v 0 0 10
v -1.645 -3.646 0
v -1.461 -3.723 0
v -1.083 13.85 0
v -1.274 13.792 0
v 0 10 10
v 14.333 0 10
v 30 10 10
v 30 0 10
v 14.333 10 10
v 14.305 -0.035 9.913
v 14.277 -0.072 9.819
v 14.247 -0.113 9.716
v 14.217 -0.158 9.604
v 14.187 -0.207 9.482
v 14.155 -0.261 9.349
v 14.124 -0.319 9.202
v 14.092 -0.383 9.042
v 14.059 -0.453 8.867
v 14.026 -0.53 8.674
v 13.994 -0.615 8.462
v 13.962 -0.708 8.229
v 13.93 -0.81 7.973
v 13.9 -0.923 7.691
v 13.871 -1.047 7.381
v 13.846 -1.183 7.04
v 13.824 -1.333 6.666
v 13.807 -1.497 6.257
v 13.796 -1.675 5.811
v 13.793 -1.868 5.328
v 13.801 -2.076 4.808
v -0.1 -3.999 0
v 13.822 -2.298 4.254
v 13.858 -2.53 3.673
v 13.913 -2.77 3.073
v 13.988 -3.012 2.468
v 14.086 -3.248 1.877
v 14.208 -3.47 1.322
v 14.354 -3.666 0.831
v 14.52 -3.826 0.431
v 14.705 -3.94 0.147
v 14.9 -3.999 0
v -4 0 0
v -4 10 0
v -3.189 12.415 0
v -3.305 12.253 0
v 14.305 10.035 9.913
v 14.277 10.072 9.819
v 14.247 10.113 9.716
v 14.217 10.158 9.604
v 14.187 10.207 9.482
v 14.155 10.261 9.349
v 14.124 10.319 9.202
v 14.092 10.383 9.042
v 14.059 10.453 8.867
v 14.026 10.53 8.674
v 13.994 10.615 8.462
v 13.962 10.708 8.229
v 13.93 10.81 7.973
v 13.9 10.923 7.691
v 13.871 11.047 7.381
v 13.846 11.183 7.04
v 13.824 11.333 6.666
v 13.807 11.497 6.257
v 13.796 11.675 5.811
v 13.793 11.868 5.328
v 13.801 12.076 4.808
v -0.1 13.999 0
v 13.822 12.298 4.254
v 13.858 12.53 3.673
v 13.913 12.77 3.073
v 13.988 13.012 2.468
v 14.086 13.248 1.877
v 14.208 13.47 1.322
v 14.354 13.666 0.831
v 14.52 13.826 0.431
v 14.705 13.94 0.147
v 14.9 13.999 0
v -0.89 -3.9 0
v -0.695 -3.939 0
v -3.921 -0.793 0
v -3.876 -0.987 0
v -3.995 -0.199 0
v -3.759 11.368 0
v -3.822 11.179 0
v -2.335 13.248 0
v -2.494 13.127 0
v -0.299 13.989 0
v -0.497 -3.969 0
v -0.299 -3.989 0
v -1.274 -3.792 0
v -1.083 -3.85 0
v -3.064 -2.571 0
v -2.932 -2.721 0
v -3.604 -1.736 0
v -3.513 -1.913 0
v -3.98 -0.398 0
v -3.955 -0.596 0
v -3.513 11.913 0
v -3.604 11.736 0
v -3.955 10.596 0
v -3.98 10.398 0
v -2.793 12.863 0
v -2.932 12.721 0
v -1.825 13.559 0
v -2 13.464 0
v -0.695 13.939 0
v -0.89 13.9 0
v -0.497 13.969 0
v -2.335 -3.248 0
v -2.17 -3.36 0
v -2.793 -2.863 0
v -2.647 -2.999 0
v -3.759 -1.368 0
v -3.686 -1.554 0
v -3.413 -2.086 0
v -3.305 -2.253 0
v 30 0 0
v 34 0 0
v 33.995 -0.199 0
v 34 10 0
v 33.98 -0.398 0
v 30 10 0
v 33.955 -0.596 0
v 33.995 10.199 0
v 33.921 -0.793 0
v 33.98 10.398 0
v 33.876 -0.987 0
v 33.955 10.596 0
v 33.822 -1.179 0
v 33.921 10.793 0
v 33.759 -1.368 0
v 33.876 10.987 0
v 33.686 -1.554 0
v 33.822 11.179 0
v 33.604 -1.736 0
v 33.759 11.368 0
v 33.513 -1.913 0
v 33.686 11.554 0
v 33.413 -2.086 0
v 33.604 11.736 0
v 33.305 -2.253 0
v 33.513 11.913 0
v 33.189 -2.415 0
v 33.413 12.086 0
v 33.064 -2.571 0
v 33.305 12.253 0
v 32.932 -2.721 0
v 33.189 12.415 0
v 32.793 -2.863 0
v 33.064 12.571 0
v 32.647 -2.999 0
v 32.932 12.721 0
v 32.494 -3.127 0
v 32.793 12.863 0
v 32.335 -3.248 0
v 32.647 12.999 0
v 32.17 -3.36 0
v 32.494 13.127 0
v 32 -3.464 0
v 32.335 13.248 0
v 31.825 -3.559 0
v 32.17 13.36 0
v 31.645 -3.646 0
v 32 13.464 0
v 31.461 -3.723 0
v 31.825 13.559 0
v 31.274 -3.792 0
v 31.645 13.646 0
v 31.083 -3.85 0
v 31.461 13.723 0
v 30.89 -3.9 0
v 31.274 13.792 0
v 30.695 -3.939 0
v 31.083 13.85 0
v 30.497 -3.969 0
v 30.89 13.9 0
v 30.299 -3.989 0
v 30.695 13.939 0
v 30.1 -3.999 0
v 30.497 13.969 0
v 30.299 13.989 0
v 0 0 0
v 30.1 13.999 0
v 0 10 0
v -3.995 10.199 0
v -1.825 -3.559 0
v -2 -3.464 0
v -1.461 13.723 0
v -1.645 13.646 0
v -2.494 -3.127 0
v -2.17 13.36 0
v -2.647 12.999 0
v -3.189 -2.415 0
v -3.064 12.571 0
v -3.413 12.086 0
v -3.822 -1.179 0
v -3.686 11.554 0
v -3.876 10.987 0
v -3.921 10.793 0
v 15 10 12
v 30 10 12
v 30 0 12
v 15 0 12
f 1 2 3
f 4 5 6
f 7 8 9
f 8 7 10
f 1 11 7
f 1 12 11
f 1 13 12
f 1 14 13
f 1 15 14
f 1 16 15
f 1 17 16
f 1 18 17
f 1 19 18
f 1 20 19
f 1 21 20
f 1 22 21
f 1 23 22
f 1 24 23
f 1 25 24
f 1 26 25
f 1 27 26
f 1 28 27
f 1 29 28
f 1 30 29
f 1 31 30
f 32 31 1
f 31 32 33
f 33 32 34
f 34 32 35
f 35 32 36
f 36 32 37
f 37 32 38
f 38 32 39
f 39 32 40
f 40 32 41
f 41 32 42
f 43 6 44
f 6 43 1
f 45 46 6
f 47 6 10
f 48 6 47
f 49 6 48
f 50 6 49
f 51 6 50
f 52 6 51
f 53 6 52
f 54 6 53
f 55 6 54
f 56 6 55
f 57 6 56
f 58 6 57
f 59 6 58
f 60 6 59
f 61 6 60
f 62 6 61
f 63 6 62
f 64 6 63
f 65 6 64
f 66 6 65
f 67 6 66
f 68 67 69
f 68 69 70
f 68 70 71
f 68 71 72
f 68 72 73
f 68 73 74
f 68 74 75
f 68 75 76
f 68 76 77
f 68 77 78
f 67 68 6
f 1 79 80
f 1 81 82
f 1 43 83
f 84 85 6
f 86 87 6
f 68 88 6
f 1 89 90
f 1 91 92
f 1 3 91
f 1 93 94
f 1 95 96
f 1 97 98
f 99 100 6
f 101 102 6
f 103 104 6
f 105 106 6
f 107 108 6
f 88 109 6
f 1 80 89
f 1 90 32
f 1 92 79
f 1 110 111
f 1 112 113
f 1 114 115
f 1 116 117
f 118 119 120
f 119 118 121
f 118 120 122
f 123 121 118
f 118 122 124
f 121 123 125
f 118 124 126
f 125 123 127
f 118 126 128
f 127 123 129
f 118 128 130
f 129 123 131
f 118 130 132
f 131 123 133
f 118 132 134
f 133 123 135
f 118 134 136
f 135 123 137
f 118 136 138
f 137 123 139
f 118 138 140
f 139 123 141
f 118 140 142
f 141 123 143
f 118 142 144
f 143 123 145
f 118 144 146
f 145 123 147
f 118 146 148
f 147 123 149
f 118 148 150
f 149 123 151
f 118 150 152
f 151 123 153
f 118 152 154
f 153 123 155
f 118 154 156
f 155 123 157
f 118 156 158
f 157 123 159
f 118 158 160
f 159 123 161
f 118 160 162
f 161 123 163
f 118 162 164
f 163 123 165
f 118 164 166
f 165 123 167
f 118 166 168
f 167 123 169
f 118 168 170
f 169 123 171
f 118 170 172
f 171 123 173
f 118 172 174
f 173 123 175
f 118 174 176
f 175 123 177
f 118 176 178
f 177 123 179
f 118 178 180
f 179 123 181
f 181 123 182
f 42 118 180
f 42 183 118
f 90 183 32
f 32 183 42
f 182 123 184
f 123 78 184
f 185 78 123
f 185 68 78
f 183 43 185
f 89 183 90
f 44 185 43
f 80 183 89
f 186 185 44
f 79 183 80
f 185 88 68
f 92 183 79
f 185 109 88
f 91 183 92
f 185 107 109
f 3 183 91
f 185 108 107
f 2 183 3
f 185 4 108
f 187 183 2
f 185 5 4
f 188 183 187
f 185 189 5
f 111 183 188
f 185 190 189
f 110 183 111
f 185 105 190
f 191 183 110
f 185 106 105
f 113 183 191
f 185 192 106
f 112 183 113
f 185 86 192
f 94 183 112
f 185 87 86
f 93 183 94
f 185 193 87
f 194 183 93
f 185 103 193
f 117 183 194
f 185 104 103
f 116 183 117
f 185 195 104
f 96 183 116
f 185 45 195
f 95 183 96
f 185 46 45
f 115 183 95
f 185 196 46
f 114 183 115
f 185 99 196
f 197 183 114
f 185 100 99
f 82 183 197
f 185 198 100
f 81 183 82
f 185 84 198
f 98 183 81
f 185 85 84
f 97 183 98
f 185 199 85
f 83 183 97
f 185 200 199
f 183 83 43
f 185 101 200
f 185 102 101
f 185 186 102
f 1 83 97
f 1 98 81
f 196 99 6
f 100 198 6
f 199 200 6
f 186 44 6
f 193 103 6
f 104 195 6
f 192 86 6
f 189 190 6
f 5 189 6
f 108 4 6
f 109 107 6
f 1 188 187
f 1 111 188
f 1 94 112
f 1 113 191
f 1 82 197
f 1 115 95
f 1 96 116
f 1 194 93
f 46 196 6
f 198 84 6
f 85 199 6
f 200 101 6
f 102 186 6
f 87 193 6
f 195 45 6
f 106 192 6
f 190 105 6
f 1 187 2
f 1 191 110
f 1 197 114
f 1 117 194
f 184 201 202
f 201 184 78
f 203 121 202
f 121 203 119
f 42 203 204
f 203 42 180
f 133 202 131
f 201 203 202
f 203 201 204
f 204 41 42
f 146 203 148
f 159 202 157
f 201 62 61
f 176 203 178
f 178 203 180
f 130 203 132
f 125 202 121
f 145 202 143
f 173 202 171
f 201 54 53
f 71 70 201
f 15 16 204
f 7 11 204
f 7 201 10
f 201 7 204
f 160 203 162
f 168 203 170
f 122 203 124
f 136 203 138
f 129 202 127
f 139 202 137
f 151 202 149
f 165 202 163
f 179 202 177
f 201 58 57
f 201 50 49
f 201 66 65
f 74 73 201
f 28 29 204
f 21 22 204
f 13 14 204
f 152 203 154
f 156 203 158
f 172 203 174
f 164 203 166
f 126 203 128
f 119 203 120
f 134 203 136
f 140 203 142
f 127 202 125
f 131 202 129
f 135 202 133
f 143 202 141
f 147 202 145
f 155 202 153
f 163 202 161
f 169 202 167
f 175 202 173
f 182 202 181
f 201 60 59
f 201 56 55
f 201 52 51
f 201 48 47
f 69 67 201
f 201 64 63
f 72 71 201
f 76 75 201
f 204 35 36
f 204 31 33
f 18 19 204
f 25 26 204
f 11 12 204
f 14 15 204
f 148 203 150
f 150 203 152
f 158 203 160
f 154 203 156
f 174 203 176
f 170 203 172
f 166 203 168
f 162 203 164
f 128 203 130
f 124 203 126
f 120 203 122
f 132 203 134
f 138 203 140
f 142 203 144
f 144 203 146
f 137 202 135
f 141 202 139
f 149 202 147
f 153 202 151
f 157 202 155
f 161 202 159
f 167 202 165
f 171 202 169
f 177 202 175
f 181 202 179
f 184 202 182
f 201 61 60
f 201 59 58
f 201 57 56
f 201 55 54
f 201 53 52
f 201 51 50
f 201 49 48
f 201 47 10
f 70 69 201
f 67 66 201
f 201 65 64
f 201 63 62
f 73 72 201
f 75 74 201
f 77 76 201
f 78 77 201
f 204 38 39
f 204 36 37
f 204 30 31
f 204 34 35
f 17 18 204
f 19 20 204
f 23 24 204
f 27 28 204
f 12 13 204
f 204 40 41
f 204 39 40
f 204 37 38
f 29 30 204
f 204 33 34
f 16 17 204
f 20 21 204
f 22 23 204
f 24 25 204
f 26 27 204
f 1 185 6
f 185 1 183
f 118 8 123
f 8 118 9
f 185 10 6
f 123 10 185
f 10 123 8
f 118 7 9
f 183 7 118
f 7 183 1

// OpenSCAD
// Parois fines
$fs = 0.2;
$fa = 1;

difference() {
	union() {
		minkowski() {
			scale([1, 1, 0]) {
				cube([30, 10, 10]);
			}
			cylinder(r1=4, r2=0, h=10);
		}
		minkowski() {
			translate([15, 0, 0]) {
				scale([1, 1, 0]) {
					cube([15, 10, 2]);
				}
			}
			cylinder(r1=4, r2=0, h=12);
		}
	}
	cube([30, 10, 10]);
}
